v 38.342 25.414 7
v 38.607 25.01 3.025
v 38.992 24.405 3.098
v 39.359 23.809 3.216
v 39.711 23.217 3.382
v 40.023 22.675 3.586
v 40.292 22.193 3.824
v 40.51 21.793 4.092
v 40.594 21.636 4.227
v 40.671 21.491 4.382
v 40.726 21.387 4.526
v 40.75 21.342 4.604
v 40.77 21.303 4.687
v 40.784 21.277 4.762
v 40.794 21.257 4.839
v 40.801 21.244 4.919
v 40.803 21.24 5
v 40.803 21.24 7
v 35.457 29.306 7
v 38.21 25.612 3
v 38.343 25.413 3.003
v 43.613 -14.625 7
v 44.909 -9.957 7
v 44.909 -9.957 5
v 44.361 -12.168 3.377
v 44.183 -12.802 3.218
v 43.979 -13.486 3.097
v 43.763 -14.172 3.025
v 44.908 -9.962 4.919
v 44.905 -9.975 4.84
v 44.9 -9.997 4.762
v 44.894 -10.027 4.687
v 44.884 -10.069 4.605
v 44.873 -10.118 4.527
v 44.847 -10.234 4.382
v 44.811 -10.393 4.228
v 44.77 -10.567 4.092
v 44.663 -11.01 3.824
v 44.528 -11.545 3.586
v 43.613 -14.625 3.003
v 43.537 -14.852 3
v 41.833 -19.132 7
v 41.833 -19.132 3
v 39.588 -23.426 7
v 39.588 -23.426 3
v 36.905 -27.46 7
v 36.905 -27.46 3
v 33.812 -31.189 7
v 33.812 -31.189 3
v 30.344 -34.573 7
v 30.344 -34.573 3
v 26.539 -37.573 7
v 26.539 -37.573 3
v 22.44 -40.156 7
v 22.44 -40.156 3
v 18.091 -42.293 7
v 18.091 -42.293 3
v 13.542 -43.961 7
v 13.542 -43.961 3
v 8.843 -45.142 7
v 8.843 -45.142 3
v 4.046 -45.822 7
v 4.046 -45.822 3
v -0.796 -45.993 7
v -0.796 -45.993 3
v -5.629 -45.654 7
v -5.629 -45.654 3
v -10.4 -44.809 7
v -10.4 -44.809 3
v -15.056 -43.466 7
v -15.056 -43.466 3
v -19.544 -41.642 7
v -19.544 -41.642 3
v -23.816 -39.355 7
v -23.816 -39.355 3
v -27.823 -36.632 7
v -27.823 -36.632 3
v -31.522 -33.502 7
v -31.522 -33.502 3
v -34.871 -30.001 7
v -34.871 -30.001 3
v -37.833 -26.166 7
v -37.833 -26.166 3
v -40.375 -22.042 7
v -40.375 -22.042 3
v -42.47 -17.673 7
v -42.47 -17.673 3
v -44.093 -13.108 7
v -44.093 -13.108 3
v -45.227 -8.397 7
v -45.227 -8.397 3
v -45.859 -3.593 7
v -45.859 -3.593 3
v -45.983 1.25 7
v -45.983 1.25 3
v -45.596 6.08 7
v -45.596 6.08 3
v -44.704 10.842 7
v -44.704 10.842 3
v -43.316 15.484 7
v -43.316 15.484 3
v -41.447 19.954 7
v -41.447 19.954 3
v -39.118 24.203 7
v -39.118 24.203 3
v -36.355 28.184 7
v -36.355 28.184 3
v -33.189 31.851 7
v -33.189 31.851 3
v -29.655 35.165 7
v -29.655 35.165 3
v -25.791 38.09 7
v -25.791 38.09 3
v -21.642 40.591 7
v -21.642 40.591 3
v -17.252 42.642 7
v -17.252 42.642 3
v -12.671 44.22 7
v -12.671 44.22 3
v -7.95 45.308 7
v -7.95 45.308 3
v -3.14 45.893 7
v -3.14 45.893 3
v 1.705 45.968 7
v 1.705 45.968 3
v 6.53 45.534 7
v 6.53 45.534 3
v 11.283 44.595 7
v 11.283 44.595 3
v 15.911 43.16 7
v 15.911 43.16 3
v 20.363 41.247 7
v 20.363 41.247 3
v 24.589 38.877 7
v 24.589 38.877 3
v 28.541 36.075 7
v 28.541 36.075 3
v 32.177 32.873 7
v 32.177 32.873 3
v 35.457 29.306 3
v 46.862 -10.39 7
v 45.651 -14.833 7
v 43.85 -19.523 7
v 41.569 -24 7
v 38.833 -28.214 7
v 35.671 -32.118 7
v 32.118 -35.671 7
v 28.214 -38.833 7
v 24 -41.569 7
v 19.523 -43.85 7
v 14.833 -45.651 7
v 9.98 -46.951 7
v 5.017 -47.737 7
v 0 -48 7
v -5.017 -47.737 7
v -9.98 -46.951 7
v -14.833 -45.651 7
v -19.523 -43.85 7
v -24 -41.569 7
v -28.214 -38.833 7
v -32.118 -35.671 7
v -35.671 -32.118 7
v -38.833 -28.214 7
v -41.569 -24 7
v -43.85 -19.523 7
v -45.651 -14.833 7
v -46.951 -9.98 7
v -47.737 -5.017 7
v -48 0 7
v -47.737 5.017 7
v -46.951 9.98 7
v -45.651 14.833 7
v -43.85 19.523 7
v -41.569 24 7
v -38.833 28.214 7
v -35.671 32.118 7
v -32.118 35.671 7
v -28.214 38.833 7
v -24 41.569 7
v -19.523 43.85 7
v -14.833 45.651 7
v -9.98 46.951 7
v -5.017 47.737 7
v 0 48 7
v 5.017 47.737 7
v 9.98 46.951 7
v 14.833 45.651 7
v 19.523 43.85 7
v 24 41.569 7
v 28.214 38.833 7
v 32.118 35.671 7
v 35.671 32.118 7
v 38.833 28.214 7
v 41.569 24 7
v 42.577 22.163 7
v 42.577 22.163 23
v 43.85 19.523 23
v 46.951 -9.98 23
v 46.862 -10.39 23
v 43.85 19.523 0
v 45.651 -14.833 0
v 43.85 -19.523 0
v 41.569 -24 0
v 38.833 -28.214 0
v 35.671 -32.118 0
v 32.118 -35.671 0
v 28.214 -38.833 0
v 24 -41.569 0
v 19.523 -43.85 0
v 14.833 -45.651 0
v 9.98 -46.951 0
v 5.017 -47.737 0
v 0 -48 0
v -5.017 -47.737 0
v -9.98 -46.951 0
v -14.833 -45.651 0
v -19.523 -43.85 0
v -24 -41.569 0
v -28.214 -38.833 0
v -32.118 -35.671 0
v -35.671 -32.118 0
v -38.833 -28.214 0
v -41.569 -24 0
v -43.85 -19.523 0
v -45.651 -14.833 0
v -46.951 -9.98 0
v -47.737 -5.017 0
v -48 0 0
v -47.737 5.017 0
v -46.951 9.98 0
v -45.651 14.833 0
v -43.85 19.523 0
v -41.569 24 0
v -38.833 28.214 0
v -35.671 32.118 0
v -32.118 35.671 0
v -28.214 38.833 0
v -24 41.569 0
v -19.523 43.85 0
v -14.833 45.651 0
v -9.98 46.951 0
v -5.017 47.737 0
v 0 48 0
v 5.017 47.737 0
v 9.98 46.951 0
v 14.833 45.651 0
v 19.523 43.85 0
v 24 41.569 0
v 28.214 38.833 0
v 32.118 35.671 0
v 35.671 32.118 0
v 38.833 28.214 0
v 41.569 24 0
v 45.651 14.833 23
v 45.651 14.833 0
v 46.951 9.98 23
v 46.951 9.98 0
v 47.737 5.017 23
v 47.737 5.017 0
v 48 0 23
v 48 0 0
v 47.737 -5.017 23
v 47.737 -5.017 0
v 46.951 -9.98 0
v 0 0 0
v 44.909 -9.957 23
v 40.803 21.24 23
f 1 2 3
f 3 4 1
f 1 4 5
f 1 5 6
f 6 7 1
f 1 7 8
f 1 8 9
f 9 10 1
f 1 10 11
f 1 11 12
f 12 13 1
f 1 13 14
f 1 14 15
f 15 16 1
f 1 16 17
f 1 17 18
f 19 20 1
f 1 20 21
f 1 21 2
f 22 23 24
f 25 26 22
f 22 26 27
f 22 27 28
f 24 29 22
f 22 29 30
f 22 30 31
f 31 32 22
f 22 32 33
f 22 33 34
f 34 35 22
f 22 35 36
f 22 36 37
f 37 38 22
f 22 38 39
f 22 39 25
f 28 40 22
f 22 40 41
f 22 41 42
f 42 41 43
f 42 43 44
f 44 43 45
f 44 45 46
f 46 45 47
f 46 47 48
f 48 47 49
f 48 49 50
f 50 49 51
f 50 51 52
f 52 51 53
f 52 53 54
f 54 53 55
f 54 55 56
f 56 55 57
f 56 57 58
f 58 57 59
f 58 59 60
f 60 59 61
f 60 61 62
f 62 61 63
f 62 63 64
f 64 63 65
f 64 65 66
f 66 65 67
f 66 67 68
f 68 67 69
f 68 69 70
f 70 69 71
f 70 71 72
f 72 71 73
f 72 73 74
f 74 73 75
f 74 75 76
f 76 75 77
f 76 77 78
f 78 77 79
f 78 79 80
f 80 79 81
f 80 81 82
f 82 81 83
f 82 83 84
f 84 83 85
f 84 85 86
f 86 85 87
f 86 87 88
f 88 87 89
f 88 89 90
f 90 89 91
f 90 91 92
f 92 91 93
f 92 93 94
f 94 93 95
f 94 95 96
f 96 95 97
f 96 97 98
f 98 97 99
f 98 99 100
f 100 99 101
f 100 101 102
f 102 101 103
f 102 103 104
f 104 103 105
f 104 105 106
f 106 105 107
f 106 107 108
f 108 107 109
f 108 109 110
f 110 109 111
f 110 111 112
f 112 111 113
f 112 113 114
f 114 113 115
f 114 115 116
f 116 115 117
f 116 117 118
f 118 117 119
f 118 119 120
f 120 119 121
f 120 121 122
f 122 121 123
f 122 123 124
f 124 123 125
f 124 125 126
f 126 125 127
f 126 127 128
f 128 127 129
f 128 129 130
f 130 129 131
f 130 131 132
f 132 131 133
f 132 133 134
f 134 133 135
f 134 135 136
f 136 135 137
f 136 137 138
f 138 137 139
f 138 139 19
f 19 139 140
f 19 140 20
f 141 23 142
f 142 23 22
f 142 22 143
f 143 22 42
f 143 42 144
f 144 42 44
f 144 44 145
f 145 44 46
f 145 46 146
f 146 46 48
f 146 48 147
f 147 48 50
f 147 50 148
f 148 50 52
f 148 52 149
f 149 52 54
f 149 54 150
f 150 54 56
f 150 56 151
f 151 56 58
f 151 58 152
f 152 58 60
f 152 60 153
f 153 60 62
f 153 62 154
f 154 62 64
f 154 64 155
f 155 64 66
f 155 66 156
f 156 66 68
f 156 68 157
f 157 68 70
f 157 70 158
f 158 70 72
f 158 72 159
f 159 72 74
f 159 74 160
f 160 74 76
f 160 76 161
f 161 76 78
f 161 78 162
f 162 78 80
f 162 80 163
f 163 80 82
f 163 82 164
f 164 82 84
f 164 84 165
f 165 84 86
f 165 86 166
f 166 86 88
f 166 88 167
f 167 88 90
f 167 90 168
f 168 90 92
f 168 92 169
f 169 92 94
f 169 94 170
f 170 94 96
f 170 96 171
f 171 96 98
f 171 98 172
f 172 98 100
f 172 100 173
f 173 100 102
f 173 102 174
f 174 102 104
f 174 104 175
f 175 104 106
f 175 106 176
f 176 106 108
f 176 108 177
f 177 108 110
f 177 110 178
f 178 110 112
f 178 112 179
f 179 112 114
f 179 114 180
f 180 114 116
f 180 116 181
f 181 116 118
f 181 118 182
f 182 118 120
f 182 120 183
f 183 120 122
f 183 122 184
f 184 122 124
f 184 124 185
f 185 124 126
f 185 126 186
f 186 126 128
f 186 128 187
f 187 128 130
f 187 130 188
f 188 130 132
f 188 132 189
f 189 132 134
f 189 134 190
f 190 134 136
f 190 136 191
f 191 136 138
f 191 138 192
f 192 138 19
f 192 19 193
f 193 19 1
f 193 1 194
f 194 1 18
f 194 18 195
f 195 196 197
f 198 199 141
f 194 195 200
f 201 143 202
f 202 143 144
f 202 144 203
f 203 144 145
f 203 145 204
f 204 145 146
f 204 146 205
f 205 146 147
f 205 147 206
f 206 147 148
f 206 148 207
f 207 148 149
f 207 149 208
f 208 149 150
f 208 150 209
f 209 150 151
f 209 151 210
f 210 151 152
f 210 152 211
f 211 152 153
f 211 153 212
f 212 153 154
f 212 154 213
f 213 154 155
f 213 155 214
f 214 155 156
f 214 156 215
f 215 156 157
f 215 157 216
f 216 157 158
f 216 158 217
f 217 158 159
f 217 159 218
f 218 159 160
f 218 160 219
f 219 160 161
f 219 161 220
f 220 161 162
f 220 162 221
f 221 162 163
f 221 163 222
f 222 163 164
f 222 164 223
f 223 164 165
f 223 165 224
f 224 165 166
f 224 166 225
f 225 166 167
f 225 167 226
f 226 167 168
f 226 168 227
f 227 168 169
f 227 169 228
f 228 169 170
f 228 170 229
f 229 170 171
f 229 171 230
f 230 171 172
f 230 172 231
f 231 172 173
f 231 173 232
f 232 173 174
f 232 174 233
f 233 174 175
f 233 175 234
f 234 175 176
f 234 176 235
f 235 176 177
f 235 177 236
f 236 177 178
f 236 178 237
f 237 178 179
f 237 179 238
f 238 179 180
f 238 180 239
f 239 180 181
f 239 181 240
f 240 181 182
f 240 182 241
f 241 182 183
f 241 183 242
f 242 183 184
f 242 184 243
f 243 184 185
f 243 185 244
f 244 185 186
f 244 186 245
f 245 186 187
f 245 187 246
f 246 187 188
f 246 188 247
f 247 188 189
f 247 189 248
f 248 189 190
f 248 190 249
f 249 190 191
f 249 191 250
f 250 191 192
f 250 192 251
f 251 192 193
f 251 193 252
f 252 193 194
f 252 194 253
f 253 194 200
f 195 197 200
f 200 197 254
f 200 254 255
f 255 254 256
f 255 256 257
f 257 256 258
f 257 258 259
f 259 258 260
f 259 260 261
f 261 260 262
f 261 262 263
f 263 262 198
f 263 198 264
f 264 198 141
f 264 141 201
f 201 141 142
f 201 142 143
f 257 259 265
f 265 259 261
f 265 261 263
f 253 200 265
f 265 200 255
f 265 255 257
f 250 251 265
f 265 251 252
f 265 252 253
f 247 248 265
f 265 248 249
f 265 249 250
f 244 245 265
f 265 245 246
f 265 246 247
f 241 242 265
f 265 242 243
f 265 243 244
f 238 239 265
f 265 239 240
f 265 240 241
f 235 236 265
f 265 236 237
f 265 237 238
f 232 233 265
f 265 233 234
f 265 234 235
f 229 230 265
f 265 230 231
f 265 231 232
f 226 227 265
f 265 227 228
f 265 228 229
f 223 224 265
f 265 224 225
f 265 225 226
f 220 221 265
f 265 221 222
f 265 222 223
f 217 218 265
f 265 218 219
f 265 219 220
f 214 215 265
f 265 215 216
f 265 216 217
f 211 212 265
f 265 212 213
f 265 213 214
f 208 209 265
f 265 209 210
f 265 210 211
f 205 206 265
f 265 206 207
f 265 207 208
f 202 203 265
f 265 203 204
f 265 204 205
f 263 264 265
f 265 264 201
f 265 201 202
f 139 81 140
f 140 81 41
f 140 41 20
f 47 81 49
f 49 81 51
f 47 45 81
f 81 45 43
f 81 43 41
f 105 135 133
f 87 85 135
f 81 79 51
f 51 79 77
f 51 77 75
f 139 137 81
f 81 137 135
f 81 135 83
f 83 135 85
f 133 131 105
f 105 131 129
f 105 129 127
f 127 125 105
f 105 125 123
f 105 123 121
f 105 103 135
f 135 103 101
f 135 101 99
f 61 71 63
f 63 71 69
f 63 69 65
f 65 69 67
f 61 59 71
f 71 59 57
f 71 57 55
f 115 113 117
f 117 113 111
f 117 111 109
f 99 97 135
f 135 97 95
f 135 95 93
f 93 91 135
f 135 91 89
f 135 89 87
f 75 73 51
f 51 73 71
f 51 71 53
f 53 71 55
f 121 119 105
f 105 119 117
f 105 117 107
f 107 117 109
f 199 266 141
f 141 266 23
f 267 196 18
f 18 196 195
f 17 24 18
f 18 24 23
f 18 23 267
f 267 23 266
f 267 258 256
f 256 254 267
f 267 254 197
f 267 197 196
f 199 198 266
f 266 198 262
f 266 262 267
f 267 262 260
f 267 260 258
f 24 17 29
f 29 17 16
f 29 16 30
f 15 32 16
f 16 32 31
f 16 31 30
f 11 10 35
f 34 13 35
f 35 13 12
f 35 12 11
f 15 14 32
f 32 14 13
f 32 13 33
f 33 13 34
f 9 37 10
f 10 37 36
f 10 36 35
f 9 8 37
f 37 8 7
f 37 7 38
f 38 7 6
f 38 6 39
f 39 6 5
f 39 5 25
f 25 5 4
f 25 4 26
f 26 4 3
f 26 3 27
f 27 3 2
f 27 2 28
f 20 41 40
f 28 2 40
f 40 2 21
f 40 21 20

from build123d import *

# Parameters (mm, degrees)
SKETCH1_R           = 48
BOSS_EXTRUDE1_DEPTH = 3
SKETCH2_R           = 48
SKETCH2_R_2         = 46
BOSS_EXTRUDE2_DEPTH = 4
BOSS_EXTRUDE3_DEPTH = 20
FILLET1_R           = 2


with BuildPart() as part:
    # Sketch1 → Boss-Extrude1 (new body)
    with BuildSketch(Plane(origin=(0, 0, 0), x_dir=(0, 1, 0), z_dir=(0, 0, 1))):
        Circle(SKETCH1_R)
    extrude(amount=BOSS_EXTRUDE1_DEPTH)

    # Sketch2 → Boss-Extrude2 (add)
    with BuildSketch(Plane.XY.offset(3)):
        Circle(SKETCH2_R)
        Circle(SKETCH2_R_2, mode=Mode.SUBTRACT)
    extrude(amount=BOSS_EXTRUDE2_DEPTH)

    # Sketch3 → Boss-Extrude3 (add)
    with BuildSketch(Plane.XY.offset(3)):
        with BuildLine():
            Line((42.576897618, 22.163208008), (40.802860217, 21.239741008))
            Line((40.802860217, 21.239741008), (44.909446686, -9.956987415))
            Line((44.909446686, -9.956987415), (46.862031324, -10.389899911))
            ThreePointArc((46.862031324, -10.389899911), (47.589460087, 6.264446393), (42.576897618, 22.163208008))
        make_face()
    extrude(amount=BOSS_EXTRUDE3_DEPTH)

    # Fillet1
    fillet1_edges = [part.edges().sort_by_distance(p)[0] for p in [
        (42.856153452, 5.641376796, 3),
    ]]
    fillet(fillet1_edges, radius=FILLET1_R)


solid = part.part
